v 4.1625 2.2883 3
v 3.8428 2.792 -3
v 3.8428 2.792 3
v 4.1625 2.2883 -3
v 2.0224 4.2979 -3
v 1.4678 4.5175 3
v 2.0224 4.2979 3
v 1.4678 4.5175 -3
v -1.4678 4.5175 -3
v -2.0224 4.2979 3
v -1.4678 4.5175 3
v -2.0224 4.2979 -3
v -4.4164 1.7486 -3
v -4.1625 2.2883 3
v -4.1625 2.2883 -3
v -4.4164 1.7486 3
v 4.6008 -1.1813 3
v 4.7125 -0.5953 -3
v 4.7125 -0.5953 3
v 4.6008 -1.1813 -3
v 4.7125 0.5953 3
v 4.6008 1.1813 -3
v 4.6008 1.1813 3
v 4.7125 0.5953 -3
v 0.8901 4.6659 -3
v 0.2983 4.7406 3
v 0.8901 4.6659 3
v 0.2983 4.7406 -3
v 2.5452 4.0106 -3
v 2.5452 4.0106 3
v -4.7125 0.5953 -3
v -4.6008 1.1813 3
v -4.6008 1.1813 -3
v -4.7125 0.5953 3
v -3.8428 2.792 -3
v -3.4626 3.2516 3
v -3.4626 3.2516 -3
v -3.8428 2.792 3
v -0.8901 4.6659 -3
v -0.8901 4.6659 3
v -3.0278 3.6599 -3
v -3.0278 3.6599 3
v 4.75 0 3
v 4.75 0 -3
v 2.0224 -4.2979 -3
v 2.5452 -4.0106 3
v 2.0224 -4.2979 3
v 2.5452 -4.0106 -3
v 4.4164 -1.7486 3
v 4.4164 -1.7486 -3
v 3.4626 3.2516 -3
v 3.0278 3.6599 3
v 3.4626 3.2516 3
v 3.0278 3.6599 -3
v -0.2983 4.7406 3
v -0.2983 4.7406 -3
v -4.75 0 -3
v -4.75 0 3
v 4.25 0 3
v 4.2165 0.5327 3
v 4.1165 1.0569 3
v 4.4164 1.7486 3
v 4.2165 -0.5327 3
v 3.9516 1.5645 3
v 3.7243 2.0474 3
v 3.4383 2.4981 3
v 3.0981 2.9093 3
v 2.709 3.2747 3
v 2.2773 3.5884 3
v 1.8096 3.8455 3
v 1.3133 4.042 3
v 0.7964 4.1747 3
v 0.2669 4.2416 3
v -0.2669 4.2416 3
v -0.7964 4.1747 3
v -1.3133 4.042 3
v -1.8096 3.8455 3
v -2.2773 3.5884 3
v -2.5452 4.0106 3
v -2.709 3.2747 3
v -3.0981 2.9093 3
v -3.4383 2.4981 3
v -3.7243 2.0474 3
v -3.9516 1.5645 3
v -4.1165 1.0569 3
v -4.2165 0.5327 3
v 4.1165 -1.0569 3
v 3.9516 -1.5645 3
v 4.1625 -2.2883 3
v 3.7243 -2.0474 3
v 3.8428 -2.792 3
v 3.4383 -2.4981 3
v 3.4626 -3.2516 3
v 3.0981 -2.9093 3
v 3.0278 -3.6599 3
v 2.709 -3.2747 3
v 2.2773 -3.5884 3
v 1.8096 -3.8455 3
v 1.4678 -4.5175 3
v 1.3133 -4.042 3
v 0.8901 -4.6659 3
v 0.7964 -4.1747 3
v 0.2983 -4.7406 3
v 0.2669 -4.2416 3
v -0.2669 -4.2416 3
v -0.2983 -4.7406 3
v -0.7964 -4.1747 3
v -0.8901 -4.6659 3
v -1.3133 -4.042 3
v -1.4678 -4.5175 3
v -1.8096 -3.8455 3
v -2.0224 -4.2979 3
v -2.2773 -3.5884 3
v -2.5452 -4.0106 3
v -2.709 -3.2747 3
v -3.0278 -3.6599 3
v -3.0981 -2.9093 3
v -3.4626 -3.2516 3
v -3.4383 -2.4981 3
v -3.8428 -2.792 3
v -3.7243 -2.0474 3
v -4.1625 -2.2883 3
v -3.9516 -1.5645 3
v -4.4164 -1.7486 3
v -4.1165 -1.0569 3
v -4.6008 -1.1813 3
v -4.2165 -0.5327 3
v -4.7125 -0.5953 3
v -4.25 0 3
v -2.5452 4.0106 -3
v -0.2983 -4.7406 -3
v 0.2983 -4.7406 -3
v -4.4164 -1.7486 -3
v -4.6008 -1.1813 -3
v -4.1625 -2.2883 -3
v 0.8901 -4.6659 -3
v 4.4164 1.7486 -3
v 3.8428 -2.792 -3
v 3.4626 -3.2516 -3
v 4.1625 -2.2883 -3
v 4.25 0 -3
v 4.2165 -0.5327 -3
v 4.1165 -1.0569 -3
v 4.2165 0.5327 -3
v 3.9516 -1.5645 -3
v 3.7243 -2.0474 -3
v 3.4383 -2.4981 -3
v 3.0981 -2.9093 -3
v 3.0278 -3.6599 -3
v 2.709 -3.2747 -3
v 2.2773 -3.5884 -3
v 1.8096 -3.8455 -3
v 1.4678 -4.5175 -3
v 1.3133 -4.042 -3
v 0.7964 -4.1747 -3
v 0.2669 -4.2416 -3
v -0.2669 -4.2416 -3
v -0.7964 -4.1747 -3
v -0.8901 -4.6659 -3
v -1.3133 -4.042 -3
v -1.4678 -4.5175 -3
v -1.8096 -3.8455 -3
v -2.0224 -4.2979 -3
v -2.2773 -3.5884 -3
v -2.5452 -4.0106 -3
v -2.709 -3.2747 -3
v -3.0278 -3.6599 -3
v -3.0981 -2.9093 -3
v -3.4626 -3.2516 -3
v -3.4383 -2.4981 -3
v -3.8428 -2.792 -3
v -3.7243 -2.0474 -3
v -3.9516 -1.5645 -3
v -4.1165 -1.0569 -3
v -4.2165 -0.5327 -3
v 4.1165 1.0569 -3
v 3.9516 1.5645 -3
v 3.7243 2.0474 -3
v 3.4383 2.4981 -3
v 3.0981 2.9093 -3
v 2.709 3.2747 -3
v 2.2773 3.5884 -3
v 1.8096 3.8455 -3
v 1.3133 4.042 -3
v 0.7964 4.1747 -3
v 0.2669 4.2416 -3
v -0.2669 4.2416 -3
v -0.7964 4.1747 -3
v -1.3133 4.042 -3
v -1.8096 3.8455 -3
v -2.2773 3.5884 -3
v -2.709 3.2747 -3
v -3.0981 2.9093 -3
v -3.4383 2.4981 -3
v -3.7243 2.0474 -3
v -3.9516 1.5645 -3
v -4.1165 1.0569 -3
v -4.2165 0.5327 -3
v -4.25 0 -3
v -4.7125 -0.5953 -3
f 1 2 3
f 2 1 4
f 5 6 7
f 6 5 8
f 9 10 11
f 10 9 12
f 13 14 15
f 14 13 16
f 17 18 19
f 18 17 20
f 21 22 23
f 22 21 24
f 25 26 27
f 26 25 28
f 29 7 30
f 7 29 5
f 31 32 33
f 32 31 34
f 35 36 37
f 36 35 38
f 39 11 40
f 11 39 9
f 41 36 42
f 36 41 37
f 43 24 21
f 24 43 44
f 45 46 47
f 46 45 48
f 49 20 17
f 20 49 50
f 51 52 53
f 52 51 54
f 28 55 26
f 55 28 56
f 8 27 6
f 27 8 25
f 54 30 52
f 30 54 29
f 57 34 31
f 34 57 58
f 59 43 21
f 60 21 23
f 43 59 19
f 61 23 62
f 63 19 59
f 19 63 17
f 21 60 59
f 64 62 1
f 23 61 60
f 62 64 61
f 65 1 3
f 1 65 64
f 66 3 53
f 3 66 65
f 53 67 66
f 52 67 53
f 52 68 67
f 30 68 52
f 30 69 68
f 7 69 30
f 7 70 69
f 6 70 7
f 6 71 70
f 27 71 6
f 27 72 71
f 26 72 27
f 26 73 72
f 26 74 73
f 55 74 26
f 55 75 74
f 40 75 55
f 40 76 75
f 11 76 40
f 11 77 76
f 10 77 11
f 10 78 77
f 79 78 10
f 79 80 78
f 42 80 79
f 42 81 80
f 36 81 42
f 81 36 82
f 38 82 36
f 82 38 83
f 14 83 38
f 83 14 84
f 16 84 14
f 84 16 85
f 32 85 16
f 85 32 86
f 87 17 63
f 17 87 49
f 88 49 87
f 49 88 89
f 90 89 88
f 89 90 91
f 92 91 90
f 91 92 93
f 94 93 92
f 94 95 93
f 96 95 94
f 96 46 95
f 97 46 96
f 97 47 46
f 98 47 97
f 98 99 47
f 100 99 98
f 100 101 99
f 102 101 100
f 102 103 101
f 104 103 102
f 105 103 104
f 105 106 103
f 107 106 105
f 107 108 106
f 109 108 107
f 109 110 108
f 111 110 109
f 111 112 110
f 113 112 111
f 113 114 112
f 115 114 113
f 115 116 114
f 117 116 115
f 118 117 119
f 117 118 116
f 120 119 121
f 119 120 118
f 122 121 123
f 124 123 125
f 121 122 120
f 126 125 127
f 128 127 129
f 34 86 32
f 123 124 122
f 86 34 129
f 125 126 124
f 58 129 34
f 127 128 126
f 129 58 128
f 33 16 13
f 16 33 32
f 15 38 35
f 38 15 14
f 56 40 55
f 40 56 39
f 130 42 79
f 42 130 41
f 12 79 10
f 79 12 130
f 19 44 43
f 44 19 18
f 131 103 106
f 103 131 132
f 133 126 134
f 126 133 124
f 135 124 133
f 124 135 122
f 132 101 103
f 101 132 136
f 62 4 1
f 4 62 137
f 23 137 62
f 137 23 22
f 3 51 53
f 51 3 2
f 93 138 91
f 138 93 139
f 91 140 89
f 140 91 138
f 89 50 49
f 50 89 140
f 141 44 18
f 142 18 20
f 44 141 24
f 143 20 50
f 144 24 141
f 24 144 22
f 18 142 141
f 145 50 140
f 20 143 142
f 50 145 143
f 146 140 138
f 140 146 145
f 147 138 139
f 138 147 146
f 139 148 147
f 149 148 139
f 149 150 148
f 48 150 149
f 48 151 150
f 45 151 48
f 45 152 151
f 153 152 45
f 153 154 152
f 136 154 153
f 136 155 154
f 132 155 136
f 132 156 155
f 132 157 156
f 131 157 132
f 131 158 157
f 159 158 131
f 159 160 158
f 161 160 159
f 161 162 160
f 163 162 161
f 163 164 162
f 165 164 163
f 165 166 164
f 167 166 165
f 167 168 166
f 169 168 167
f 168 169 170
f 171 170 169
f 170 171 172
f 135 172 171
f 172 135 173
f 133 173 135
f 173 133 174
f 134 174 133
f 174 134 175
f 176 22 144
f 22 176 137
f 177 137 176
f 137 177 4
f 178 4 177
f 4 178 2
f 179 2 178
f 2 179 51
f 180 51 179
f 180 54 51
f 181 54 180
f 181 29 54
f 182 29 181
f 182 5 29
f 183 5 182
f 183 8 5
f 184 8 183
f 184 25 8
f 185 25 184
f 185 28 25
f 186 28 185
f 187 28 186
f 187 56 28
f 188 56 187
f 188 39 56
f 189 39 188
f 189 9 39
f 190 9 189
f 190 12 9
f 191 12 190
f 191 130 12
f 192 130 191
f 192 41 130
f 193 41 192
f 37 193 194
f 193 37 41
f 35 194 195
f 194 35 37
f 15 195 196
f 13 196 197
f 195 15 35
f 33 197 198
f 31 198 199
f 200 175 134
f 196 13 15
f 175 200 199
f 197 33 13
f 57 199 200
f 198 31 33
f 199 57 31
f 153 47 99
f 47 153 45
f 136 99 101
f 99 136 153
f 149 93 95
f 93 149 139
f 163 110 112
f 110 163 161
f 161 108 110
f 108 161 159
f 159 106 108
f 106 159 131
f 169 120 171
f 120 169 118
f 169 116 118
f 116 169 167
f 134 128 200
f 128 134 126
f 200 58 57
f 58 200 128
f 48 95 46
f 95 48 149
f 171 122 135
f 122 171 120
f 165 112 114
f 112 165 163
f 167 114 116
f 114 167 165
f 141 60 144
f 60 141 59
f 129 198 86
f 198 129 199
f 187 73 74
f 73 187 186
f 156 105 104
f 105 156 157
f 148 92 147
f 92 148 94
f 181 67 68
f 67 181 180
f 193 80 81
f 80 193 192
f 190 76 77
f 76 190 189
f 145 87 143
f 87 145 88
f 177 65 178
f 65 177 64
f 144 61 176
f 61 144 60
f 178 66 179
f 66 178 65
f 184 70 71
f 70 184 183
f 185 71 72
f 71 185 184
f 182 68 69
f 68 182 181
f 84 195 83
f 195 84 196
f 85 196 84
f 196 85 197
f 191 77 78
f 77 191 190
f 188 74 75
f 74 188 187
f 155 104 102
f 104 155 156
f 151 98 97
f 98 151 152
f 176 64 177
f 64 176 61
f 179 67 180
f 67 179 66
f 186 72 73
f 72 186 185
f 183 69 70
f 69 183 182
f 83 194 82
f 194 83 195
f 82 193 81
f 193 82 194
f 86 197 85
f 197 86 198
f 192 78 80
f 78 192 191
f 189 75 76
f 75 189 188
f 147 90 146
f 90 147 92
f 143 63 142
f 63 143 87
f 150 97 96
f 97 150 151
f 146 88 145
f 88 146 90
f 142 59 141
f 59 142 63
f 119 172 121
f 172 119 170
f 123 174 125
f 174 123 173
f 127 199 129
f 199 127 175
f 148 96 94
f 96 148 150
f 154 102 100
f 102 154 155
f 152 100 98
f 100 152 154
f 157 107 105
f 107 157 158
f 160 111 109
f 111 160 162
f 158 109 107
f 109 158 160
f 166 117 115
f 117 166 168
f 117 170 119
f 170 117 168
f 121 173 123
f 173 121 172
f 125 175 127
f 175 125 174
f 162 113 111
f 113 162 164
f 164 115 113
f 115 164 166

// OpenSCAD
$fn = 50;


difference() {
	union() {
		translate(v = [0, 0, -3.0000000000]) {
			cylinder(h = 6, r = 4.7500000000);
		}
	}
	union() {
		translate(v = [0, 0, -100.0000000000]) {
			cylinder(h = 200, r = 4.2500000000);
		}
	}
}
